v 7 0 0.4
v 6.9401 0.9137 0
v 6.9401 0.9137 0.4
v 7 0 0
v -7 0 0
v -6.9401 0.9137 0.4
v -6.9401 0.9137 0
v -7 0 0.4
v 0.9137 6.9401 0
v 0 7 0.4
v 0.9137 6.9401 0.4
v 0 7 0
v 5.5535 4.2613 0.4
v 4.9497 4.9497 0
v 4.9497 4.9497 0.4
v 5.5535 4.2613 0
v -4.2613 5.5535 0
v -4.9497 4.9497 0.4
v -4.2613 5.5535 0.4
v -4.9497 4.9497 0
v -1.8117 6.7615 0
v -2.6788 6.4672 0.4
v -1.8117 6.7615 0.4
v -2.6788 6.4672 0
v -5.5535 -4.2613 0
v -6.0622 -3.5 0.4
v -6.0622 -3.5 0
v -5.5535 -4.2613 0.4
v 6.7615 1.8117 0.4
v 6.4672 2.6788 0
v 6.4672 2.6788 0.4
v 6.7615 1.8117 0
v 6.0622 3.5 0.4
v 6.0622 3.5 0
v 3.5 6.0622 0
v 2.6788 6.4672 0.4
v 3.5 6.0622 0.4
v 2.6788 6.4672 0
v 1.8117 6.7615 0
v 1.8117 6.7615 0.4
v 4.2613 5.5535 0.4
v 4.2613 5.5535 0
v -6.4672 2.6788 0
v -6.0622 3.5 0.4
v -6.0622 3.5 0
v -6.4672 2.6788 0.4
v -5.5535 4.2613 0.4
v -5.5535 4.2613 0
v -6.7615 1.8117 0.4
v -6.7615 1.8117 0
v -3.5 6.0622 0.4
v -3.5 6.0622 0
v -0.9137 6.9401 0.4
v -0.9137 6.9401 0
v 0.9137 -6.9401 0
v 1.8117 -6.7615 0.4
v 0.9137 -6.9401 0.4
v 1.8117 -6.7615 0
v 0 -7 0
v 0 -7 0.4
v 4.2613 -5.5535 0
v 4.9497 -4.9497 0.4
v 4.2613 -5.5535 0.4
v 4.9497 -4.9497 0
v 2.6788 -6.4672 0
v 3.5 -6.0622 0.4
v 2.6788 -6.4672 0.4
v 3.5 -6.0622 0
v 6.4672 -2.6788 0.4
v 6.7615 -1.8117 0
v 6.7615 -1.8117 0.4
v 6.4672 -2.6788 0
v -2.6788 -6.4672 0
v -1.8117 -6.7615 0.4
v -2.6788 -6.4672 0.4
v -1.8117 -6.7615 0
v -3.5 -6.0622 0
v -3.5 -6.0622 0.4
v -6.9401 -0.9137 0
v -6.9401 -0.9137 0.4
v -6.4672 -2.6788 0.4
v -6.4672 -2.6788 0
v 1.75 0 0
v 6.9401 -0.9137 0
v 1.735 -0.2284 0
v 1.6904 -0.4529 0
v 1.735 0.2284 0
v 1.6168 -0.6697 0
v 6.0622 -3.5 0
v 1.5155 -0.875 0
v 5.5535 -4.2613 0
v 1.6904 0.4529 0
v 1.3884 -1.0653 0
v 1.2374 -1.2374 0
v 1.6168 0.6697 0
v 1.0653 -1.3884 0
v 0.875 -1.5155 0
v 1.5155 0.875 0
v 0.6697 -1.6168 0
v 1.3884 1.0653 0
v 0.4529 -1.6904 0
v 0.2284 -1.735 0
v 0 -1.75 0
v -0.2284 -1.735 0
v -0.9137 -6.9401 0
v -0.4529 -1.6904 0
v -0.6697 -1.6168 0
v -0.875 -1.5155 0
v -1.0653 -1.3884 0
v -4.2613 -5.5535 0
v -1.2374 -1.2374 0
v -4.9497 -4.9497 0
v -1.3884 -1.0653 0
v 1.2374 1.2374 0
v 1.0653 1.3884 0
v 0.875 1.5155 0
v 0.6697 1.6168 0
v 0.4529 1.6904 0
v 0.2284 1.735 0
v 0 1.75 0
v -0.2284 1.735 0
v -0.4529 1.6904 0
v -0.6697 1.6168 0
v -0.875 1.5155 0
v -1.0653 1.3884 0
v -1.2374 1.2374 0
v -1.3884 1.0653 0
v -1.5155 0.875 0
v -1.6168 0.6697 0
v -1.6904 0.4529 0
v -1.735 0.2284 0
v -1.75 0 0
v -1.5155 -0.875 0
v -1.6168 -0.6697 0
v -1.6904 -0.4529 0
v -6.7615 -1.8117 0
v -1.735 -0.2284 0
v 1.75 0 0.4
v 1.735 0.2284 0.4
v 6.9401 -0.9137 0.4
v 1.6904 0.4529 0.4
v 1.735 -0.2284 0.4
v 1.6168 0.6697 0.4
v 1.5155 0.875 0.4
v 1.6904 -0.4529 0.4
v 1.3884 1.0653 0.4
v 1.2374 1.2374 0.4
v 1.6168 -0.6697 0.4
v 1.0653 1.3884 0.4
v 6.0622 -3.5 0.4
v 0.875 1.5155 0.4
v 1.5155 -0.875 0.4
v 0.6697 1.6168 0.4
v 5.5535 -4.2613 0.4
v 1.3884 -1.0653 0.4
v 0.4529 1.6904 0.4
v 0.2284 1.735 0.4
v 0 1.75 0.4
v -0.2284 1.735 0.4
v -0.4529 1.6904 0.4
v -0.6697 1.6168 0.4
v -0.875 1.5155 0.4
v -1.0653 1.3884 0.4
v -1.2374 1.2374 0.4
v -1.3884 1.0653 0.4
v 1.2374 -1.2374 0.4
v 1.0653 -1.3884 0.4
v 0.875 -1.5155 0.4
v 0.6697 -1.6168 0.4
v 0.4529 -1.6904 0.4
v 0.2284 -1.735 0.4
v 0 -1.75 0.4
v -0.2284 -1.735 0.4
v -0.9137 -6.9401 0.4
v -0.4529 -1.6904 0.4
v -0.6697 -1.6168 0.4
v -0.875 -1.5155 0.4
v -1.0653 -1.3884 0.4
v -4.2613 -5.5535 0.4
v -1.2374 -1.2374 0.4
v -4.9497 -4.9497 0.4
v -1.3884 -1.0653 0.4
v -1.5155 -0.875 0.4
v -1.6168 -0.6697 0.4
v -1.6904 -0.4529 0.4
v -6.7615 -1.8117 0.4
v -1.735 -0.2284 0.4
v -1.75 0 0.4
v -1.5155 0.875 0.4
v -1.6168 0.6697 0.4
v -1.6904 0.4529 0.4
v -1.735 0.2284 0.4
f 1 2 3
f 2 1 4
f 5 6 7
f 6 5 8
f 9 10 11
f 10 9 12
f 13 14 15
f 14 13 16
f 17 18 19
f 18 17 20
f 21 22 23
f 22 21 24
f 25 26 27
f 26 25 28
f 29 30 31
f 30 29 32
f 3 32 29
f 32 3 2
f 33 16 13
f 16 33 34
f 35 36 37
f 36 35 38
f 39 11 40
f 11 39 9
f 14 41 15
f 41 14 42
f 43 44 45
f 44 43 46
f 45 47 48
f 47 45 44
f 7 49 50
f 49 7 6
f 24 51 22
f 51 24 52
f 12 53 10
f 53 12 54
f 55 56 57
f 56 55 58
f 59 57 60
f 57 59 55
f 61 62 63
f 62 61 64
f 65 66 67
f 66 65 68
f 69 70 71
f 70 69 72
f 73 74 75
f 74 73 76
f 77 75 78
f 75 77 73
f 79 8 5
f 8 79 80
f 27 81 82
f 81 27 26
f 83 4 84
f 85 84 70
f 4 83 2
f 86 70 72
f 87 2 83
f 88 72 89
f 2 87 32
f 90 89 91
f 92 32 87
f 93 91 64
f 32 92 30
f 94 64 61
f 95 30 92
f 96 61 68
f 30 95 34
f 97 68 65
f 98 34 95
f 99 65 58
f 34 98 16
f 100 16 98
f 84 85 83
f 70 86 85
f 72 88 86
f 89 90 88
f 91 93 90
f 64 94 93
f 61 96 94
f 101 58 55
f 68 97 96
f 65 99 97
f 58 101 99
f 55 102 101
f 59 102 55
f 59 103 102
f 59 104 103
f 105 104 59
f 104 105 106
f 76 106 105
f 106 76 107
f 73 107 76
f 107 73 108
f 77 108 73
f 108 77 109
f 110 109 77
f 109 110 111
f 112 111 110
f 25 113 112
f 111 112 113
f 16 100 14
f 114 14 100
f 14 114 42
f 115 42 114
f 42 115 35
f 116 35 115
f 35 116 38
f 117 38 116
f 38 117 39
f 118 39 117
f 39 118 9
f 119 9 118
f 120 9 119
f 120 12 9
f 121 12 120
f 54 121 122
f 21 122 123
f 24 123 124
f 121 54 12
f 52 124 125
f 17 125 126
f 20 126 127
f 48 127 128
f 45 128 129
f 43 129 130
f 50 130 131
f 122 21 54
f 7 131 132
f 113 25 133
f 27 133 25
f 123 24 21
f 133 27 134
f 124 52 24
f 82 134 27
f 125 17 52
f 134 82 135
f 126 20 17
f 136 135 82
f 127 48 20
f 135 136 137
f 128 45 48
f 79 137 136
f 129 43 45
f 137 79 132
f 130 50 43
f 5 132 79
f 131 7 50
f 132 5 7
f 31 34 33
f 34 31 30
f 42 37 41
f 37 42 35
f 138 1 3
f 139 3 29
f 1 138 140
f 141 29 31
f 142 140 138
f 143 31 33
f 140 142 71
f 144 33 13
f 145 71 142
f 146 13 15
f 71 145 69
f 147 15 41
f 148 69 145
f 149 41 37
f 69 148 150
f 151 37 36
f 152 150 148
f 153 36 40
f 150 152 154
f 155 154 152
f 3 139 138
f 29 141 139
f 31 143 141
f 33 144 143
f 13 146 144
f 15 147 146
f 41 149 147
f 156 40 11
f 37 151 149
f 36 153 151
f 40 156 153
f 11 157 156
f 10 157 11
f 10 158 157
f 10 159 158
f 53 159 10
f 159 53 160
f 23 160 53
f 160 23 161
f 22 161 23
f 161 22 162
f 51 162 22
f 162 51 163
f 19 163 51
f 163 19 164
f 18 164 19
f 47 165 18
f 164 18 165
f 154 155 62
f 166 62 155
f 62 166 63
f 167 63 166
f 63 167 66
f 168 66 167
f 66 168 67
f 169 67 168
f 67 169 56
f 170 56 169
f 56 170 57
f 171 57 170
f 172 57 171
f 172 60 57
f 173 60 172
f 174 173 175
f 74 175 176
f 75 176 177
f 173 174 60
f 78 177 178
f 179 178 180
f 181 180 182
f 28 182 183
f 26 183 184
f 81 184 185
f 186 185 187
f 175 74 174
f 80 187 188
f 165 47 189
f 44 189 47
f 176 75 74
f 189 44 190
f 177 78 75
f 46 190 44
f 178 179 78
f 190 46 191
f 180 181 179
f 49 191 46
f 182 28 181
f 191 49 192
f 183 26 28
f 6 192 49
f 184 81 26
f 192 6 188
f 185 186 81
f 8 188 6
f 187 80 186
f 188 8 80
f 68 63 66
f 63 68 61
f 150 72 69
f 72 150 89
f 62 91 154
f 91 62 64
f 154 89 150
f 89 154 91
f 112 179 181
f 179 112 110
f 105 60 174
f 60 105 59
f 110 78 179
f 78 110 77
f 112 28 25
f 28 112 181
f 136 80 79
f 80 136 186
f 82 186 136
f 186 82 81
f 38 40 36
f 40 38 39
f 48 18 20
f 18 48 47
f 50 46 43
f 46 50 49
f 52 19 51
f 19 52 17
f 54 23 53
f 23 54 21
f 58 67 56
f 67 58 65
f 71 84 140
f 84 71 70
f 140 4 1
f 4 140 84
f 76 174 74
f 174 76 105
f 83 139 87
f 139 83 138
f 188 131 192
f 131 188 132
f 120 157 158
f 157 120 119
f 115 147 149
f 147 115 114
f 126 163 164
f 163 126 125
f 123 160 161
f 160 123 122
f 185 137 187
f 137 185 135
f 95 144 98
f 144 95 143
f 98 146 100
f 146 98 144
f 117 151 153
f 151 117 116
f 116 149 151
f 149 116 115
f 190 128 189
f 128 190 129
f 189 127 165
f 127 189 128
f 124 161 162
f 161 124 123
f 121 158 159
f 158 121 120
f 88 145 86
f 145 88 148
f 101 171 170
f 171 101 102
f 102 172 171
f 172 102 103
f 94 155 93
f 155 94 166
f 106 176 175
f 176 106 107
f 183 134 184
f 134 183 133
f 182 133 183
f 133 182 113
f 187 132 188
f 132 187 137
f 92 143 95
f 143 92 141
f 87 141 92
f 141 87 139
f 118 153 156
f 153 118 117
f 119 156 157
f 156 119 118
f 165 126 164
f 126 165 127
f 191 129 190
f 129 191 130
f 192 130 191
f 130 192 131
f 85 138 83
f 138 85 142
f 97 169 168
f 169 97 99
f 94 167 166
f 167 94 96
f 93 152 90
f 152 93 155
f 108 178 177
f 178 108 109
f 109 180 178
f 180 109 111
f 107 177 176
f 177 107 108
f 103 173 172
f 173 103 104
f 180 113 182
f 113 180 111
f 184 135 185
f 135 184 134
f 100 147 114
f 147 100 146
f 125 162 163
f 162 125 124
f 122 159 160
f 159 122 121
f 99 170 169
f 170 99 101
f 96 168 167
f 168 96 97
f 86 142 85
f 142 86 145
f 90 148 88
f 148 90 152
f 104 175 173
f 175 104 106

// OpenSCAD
// Gen-EE — POST SHIM washer (2026-11-02): 0.4 mm levelling shim under the stator at a post (stack as needed). Print x12.
include <parameters.scad>;
$fn = 48;
difference() {
    cylinder(d=14, h=post_shim_t);
    translate([0, 0, -0.1]) cylinder(d=m3_clear, h=post_shim_t + 0.2);
}
